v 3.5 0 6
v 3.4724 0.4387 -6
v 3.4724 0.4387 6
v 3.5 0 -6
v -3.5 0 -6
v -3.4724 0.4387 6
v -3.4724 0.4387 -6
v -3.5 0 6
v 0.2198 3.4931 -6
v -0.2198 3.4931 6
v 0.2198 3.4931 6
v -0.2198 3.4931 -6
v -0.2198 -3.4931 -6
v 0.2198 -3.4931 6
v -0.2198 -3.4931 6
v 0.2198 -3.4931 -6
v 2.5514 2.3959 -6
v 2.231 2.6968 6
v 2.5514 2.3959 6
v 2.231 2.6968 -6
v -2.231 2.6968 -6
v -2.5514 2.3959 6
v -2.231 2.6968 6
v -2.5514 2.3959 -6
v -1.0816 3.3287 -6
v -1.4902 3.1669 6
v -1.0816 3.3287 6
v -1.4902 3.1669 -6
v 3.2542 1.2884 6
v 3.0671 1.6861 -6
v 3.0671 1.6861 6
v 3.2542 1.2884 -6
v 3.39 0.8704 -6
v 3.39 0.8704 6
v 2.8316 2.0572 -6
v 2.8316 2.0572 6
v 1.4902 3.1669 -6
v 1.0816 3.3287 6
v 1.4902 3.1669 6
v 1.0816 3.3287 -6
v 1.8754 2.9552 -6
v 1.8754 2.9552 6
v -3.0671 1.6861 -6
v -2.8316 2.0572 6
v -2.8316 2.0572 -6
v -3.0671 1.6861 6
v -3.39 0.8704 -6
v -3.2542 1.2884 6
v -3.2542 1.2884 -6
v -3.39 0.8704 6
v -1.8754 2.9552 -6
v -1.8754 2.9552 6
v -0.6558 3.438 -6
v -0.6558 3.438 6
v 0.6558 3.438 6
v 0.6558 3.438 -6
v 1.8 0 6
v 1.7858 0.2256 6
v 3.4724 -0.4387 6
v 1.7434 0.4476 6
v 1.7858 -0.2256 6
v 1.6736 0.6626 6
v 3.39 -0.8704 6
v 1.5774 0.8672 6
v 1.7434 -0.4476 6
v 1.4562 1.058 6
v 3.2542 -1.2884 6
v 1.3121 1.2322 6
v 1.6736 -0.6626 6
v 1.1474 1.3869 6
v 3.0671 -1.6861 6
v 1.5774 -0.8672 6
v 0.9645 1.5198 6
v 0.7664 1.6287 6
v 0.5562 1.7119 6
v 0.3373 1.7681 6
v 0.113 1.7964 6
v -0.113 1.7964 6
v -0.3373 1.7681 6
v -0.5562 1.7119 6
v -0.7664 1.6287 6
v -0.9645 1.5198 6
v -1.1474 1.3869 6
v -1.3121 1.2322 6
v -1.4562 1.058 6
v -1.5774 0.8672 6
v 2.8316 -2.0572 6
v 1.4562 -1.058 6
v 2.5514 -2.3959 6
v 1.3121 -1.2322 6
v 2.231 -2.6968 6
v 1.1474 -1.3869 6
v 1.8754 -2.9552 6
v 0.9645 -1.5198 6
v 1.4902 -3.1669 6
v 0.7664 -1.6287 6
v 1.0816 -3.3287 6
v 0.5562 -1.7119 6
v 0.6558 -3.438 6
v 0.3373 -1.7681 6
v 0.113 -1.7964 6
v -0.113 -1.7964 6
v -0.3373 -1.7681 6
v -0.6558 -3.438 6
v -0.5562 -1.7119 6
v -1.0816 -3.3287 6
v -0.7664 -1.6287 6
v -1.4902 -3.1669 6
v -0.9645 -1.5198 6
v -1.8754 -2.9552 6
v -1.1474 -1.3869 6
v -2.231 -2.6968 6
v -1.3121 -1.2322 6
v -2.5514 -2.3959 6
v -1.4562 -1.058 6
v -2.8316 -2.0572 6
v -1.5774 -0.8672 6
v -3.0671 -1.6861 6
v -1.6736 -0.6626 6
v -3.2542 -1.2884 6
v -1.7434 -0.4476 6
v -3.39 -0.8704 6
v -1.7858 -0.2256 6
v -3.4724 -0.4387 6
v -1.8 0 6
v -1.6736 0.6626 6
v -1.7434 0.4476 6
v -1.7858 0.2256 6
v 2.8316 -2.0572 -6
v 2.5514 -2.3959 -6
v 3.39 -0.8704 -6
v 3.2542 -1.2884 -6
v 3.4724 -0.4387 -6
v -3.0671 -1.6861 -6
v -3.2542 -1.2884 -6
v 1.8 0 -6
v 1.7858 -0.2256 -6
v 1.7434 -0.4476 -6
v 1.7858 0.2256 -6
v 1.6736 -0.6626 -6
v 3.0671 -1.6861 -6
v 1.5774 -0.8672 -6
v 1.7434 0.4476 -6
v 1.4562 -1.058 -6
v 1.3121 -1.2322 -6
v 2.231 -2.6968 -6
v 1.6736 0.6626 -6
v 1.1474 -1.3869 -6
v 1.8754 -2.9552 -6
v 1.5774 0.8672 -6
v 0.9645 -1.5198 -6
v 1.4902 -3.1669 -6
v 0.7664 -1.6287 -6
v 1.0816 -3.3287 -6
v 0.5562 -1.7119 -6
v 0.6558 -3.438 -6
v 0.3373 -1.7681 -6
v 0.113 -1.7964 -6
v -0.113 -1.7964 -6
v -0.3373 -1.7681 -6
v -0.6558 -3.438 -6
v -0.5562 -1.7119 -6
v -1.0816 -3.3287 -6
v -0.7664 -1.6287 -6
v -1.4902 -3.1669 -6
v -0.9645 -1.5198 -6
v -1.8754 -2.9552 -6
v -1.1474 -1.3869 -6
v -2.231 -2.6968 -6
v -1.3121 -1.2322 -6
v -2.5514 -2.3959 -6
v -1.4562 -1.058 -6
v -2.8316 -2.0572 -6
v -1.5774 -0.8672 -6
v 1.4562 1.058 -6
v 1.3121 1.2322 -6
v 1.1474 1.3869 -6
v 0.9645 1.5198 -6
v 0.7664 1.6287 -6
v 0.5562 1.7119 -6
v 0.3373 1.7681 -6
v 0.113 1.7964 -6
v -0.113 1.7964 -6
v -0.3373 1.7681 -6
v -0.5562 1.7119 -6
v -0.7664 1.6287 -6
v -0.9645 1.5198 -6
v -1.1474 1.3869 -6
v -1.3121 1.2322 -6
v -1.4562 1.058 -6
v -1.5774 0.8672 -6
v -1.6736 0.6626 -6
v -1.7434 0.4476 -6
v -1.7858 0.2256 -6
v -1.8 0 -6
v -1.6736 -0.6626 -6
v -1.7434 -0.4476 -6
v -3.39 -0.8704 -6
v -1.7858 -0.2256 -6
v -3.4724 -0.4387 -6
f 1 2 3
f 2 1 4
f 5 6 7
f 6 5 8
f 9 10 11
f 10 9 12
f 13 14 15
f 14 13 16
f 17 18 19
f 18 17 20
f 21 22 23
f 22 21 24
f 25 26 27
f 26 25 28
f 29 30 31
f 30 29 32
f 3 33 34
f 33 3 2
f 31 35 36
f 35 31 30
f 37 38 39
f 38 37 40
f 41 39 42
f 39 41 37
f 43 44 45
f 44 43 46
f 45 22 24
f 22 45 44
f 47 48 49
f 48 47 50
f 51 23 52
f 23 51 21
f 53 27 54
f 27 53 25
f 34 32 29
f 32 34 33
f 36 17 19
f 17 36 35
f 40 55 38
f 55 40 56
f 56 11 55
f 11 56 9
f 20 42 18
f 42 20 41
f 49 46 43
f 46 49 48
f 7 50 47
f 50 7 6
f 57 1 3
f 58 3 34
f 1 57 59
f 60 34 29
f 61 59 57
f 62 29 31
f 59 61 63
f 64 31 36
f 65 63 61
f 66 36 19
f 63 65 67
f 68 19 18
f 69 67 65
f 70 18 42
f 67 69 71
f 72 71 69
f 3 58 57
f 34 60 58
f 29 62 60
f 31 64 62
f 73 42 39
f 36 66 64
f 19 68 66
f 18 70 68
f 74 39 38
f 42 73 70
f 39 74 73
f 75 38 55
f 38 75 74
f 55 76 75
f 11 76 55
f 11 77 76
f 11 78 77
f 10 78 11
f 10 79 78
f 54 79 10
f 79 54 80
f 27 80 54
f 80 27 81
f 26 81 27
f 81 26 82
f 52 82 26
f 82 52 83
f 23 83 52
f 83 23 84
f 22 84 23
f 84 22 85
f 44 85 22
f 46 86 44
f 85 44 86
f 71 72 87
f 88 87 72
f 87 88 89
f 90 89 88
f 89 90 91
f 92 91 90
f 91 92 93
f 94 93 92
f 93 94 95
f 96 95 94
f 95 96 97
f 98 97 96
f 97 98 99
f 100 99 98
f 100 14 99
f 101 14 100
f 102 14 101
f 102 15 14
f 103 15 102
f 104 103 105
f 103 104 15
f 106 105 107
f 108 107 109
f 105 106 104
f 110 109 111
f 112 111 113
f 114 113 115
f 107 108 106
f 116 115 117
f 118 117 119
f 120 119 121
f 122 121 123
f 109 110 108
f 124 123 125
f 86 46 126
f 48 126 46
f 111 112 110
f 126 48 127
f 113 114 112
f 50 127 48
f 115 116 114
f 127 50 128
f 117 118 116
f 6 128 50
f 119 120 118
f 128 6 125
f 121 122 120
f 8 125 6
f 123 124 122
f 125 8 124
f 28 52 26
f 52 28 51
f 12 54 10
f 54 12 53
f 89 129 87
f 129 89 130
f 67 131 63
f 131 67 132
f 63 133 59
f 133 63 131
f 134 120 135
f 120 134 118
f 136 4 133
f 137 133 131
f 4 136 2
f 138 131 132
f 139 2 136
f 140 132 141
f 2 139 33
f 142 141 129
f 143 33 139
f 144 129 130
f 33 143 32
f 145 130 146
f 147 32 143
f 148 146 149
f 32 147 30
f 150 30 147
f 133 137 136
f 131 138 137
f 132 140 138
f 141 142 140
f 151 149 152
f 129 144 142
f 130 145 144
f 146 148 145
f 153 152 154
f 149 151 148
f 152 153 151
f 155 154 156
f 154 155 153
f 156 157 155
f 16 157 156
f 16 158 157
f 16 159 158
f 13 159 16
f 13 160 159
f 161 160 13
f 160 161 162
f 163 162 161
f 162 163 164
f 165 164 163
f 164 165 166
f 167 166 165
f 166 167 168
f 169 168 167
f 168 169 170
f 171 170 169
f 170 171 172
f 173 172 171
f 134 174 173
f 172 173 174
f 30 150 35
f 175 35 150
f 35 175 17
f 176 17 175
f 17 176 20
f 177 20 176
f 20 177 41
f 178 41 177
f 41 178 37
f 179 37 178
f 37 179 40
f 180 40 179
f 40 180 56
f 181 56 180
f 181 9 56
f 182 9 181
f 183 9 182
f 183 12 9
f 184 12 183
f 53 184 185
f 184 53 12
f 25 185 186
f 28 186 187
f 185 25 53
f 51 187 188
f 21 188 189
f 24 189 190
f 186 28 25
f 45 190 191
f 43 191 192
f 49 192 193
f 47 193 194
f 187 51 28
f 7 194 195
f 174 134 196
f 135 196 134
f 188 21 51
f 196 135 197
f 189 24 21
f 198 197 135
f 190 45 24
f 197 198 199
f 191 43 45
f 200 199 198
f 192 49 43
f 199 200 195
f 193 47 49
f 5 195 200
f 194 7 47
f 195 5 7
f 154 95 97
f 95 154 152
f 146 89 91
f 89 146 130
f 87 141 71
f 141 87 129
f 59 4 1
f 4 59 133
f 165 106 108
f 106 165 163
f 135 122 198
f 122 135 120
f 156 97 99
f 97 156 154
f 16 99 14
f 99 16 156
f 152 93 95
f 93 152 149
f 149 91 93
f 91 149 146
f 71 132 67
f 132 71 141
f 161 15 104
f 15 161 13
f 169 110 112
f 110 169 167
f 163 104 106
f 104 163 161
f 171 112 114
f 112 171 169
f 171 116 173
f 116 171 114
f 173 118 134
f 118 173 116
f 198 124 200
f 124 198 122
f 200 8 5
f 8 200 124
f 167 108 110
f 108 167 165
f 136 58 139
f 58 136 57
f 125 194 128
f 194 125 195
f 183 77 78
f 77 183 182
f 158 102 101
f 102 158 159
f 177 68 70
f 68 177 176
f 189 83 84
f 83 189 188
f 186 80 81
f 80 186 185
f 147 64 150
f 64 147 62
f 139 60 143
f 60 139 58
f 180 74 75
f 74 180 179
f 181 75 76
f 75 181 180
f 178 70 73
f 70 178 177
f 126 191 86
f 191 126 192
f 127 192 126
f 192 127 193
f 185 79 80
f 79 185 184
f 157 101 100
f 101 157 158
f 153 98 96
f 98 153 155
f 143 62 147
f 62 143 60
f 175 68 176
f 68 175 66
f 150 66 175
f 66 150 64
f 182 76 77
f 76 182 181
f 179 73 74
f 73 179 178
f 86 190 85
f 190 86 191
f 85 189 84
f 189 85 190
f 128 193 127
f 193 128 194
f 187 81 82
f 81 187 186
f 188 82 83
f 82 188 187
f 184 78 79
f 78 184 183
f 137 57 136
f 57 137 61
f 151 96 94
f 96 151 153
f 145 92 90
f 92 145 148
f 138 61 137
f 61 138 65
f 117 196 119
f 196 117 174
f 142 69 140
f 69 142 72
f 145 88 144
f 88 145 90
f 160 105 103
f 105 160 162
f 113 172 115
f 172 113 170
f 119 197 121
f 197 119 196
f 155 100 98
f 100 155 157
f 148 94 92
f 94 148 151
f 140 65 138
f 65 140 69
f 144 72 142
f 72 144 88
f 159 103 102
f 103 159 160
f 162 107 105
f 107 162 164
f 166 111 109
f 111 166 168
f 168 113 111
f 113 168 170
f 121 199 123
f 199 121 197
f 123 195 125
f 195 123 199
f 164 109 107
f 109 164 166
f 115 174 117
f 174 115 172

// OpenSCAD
$fn = 50;


difference() {
	union() {
		translate(v = [0, 0, -6.0000000000]) {
			cylinder(h = 12, r = 3.5000000000);
		}
	}
	union() {
		translate(v = [0, 0, -100.0000000000]) {
			cylinder(h = 200, r = 1.8000000000);
		}
	}
}
